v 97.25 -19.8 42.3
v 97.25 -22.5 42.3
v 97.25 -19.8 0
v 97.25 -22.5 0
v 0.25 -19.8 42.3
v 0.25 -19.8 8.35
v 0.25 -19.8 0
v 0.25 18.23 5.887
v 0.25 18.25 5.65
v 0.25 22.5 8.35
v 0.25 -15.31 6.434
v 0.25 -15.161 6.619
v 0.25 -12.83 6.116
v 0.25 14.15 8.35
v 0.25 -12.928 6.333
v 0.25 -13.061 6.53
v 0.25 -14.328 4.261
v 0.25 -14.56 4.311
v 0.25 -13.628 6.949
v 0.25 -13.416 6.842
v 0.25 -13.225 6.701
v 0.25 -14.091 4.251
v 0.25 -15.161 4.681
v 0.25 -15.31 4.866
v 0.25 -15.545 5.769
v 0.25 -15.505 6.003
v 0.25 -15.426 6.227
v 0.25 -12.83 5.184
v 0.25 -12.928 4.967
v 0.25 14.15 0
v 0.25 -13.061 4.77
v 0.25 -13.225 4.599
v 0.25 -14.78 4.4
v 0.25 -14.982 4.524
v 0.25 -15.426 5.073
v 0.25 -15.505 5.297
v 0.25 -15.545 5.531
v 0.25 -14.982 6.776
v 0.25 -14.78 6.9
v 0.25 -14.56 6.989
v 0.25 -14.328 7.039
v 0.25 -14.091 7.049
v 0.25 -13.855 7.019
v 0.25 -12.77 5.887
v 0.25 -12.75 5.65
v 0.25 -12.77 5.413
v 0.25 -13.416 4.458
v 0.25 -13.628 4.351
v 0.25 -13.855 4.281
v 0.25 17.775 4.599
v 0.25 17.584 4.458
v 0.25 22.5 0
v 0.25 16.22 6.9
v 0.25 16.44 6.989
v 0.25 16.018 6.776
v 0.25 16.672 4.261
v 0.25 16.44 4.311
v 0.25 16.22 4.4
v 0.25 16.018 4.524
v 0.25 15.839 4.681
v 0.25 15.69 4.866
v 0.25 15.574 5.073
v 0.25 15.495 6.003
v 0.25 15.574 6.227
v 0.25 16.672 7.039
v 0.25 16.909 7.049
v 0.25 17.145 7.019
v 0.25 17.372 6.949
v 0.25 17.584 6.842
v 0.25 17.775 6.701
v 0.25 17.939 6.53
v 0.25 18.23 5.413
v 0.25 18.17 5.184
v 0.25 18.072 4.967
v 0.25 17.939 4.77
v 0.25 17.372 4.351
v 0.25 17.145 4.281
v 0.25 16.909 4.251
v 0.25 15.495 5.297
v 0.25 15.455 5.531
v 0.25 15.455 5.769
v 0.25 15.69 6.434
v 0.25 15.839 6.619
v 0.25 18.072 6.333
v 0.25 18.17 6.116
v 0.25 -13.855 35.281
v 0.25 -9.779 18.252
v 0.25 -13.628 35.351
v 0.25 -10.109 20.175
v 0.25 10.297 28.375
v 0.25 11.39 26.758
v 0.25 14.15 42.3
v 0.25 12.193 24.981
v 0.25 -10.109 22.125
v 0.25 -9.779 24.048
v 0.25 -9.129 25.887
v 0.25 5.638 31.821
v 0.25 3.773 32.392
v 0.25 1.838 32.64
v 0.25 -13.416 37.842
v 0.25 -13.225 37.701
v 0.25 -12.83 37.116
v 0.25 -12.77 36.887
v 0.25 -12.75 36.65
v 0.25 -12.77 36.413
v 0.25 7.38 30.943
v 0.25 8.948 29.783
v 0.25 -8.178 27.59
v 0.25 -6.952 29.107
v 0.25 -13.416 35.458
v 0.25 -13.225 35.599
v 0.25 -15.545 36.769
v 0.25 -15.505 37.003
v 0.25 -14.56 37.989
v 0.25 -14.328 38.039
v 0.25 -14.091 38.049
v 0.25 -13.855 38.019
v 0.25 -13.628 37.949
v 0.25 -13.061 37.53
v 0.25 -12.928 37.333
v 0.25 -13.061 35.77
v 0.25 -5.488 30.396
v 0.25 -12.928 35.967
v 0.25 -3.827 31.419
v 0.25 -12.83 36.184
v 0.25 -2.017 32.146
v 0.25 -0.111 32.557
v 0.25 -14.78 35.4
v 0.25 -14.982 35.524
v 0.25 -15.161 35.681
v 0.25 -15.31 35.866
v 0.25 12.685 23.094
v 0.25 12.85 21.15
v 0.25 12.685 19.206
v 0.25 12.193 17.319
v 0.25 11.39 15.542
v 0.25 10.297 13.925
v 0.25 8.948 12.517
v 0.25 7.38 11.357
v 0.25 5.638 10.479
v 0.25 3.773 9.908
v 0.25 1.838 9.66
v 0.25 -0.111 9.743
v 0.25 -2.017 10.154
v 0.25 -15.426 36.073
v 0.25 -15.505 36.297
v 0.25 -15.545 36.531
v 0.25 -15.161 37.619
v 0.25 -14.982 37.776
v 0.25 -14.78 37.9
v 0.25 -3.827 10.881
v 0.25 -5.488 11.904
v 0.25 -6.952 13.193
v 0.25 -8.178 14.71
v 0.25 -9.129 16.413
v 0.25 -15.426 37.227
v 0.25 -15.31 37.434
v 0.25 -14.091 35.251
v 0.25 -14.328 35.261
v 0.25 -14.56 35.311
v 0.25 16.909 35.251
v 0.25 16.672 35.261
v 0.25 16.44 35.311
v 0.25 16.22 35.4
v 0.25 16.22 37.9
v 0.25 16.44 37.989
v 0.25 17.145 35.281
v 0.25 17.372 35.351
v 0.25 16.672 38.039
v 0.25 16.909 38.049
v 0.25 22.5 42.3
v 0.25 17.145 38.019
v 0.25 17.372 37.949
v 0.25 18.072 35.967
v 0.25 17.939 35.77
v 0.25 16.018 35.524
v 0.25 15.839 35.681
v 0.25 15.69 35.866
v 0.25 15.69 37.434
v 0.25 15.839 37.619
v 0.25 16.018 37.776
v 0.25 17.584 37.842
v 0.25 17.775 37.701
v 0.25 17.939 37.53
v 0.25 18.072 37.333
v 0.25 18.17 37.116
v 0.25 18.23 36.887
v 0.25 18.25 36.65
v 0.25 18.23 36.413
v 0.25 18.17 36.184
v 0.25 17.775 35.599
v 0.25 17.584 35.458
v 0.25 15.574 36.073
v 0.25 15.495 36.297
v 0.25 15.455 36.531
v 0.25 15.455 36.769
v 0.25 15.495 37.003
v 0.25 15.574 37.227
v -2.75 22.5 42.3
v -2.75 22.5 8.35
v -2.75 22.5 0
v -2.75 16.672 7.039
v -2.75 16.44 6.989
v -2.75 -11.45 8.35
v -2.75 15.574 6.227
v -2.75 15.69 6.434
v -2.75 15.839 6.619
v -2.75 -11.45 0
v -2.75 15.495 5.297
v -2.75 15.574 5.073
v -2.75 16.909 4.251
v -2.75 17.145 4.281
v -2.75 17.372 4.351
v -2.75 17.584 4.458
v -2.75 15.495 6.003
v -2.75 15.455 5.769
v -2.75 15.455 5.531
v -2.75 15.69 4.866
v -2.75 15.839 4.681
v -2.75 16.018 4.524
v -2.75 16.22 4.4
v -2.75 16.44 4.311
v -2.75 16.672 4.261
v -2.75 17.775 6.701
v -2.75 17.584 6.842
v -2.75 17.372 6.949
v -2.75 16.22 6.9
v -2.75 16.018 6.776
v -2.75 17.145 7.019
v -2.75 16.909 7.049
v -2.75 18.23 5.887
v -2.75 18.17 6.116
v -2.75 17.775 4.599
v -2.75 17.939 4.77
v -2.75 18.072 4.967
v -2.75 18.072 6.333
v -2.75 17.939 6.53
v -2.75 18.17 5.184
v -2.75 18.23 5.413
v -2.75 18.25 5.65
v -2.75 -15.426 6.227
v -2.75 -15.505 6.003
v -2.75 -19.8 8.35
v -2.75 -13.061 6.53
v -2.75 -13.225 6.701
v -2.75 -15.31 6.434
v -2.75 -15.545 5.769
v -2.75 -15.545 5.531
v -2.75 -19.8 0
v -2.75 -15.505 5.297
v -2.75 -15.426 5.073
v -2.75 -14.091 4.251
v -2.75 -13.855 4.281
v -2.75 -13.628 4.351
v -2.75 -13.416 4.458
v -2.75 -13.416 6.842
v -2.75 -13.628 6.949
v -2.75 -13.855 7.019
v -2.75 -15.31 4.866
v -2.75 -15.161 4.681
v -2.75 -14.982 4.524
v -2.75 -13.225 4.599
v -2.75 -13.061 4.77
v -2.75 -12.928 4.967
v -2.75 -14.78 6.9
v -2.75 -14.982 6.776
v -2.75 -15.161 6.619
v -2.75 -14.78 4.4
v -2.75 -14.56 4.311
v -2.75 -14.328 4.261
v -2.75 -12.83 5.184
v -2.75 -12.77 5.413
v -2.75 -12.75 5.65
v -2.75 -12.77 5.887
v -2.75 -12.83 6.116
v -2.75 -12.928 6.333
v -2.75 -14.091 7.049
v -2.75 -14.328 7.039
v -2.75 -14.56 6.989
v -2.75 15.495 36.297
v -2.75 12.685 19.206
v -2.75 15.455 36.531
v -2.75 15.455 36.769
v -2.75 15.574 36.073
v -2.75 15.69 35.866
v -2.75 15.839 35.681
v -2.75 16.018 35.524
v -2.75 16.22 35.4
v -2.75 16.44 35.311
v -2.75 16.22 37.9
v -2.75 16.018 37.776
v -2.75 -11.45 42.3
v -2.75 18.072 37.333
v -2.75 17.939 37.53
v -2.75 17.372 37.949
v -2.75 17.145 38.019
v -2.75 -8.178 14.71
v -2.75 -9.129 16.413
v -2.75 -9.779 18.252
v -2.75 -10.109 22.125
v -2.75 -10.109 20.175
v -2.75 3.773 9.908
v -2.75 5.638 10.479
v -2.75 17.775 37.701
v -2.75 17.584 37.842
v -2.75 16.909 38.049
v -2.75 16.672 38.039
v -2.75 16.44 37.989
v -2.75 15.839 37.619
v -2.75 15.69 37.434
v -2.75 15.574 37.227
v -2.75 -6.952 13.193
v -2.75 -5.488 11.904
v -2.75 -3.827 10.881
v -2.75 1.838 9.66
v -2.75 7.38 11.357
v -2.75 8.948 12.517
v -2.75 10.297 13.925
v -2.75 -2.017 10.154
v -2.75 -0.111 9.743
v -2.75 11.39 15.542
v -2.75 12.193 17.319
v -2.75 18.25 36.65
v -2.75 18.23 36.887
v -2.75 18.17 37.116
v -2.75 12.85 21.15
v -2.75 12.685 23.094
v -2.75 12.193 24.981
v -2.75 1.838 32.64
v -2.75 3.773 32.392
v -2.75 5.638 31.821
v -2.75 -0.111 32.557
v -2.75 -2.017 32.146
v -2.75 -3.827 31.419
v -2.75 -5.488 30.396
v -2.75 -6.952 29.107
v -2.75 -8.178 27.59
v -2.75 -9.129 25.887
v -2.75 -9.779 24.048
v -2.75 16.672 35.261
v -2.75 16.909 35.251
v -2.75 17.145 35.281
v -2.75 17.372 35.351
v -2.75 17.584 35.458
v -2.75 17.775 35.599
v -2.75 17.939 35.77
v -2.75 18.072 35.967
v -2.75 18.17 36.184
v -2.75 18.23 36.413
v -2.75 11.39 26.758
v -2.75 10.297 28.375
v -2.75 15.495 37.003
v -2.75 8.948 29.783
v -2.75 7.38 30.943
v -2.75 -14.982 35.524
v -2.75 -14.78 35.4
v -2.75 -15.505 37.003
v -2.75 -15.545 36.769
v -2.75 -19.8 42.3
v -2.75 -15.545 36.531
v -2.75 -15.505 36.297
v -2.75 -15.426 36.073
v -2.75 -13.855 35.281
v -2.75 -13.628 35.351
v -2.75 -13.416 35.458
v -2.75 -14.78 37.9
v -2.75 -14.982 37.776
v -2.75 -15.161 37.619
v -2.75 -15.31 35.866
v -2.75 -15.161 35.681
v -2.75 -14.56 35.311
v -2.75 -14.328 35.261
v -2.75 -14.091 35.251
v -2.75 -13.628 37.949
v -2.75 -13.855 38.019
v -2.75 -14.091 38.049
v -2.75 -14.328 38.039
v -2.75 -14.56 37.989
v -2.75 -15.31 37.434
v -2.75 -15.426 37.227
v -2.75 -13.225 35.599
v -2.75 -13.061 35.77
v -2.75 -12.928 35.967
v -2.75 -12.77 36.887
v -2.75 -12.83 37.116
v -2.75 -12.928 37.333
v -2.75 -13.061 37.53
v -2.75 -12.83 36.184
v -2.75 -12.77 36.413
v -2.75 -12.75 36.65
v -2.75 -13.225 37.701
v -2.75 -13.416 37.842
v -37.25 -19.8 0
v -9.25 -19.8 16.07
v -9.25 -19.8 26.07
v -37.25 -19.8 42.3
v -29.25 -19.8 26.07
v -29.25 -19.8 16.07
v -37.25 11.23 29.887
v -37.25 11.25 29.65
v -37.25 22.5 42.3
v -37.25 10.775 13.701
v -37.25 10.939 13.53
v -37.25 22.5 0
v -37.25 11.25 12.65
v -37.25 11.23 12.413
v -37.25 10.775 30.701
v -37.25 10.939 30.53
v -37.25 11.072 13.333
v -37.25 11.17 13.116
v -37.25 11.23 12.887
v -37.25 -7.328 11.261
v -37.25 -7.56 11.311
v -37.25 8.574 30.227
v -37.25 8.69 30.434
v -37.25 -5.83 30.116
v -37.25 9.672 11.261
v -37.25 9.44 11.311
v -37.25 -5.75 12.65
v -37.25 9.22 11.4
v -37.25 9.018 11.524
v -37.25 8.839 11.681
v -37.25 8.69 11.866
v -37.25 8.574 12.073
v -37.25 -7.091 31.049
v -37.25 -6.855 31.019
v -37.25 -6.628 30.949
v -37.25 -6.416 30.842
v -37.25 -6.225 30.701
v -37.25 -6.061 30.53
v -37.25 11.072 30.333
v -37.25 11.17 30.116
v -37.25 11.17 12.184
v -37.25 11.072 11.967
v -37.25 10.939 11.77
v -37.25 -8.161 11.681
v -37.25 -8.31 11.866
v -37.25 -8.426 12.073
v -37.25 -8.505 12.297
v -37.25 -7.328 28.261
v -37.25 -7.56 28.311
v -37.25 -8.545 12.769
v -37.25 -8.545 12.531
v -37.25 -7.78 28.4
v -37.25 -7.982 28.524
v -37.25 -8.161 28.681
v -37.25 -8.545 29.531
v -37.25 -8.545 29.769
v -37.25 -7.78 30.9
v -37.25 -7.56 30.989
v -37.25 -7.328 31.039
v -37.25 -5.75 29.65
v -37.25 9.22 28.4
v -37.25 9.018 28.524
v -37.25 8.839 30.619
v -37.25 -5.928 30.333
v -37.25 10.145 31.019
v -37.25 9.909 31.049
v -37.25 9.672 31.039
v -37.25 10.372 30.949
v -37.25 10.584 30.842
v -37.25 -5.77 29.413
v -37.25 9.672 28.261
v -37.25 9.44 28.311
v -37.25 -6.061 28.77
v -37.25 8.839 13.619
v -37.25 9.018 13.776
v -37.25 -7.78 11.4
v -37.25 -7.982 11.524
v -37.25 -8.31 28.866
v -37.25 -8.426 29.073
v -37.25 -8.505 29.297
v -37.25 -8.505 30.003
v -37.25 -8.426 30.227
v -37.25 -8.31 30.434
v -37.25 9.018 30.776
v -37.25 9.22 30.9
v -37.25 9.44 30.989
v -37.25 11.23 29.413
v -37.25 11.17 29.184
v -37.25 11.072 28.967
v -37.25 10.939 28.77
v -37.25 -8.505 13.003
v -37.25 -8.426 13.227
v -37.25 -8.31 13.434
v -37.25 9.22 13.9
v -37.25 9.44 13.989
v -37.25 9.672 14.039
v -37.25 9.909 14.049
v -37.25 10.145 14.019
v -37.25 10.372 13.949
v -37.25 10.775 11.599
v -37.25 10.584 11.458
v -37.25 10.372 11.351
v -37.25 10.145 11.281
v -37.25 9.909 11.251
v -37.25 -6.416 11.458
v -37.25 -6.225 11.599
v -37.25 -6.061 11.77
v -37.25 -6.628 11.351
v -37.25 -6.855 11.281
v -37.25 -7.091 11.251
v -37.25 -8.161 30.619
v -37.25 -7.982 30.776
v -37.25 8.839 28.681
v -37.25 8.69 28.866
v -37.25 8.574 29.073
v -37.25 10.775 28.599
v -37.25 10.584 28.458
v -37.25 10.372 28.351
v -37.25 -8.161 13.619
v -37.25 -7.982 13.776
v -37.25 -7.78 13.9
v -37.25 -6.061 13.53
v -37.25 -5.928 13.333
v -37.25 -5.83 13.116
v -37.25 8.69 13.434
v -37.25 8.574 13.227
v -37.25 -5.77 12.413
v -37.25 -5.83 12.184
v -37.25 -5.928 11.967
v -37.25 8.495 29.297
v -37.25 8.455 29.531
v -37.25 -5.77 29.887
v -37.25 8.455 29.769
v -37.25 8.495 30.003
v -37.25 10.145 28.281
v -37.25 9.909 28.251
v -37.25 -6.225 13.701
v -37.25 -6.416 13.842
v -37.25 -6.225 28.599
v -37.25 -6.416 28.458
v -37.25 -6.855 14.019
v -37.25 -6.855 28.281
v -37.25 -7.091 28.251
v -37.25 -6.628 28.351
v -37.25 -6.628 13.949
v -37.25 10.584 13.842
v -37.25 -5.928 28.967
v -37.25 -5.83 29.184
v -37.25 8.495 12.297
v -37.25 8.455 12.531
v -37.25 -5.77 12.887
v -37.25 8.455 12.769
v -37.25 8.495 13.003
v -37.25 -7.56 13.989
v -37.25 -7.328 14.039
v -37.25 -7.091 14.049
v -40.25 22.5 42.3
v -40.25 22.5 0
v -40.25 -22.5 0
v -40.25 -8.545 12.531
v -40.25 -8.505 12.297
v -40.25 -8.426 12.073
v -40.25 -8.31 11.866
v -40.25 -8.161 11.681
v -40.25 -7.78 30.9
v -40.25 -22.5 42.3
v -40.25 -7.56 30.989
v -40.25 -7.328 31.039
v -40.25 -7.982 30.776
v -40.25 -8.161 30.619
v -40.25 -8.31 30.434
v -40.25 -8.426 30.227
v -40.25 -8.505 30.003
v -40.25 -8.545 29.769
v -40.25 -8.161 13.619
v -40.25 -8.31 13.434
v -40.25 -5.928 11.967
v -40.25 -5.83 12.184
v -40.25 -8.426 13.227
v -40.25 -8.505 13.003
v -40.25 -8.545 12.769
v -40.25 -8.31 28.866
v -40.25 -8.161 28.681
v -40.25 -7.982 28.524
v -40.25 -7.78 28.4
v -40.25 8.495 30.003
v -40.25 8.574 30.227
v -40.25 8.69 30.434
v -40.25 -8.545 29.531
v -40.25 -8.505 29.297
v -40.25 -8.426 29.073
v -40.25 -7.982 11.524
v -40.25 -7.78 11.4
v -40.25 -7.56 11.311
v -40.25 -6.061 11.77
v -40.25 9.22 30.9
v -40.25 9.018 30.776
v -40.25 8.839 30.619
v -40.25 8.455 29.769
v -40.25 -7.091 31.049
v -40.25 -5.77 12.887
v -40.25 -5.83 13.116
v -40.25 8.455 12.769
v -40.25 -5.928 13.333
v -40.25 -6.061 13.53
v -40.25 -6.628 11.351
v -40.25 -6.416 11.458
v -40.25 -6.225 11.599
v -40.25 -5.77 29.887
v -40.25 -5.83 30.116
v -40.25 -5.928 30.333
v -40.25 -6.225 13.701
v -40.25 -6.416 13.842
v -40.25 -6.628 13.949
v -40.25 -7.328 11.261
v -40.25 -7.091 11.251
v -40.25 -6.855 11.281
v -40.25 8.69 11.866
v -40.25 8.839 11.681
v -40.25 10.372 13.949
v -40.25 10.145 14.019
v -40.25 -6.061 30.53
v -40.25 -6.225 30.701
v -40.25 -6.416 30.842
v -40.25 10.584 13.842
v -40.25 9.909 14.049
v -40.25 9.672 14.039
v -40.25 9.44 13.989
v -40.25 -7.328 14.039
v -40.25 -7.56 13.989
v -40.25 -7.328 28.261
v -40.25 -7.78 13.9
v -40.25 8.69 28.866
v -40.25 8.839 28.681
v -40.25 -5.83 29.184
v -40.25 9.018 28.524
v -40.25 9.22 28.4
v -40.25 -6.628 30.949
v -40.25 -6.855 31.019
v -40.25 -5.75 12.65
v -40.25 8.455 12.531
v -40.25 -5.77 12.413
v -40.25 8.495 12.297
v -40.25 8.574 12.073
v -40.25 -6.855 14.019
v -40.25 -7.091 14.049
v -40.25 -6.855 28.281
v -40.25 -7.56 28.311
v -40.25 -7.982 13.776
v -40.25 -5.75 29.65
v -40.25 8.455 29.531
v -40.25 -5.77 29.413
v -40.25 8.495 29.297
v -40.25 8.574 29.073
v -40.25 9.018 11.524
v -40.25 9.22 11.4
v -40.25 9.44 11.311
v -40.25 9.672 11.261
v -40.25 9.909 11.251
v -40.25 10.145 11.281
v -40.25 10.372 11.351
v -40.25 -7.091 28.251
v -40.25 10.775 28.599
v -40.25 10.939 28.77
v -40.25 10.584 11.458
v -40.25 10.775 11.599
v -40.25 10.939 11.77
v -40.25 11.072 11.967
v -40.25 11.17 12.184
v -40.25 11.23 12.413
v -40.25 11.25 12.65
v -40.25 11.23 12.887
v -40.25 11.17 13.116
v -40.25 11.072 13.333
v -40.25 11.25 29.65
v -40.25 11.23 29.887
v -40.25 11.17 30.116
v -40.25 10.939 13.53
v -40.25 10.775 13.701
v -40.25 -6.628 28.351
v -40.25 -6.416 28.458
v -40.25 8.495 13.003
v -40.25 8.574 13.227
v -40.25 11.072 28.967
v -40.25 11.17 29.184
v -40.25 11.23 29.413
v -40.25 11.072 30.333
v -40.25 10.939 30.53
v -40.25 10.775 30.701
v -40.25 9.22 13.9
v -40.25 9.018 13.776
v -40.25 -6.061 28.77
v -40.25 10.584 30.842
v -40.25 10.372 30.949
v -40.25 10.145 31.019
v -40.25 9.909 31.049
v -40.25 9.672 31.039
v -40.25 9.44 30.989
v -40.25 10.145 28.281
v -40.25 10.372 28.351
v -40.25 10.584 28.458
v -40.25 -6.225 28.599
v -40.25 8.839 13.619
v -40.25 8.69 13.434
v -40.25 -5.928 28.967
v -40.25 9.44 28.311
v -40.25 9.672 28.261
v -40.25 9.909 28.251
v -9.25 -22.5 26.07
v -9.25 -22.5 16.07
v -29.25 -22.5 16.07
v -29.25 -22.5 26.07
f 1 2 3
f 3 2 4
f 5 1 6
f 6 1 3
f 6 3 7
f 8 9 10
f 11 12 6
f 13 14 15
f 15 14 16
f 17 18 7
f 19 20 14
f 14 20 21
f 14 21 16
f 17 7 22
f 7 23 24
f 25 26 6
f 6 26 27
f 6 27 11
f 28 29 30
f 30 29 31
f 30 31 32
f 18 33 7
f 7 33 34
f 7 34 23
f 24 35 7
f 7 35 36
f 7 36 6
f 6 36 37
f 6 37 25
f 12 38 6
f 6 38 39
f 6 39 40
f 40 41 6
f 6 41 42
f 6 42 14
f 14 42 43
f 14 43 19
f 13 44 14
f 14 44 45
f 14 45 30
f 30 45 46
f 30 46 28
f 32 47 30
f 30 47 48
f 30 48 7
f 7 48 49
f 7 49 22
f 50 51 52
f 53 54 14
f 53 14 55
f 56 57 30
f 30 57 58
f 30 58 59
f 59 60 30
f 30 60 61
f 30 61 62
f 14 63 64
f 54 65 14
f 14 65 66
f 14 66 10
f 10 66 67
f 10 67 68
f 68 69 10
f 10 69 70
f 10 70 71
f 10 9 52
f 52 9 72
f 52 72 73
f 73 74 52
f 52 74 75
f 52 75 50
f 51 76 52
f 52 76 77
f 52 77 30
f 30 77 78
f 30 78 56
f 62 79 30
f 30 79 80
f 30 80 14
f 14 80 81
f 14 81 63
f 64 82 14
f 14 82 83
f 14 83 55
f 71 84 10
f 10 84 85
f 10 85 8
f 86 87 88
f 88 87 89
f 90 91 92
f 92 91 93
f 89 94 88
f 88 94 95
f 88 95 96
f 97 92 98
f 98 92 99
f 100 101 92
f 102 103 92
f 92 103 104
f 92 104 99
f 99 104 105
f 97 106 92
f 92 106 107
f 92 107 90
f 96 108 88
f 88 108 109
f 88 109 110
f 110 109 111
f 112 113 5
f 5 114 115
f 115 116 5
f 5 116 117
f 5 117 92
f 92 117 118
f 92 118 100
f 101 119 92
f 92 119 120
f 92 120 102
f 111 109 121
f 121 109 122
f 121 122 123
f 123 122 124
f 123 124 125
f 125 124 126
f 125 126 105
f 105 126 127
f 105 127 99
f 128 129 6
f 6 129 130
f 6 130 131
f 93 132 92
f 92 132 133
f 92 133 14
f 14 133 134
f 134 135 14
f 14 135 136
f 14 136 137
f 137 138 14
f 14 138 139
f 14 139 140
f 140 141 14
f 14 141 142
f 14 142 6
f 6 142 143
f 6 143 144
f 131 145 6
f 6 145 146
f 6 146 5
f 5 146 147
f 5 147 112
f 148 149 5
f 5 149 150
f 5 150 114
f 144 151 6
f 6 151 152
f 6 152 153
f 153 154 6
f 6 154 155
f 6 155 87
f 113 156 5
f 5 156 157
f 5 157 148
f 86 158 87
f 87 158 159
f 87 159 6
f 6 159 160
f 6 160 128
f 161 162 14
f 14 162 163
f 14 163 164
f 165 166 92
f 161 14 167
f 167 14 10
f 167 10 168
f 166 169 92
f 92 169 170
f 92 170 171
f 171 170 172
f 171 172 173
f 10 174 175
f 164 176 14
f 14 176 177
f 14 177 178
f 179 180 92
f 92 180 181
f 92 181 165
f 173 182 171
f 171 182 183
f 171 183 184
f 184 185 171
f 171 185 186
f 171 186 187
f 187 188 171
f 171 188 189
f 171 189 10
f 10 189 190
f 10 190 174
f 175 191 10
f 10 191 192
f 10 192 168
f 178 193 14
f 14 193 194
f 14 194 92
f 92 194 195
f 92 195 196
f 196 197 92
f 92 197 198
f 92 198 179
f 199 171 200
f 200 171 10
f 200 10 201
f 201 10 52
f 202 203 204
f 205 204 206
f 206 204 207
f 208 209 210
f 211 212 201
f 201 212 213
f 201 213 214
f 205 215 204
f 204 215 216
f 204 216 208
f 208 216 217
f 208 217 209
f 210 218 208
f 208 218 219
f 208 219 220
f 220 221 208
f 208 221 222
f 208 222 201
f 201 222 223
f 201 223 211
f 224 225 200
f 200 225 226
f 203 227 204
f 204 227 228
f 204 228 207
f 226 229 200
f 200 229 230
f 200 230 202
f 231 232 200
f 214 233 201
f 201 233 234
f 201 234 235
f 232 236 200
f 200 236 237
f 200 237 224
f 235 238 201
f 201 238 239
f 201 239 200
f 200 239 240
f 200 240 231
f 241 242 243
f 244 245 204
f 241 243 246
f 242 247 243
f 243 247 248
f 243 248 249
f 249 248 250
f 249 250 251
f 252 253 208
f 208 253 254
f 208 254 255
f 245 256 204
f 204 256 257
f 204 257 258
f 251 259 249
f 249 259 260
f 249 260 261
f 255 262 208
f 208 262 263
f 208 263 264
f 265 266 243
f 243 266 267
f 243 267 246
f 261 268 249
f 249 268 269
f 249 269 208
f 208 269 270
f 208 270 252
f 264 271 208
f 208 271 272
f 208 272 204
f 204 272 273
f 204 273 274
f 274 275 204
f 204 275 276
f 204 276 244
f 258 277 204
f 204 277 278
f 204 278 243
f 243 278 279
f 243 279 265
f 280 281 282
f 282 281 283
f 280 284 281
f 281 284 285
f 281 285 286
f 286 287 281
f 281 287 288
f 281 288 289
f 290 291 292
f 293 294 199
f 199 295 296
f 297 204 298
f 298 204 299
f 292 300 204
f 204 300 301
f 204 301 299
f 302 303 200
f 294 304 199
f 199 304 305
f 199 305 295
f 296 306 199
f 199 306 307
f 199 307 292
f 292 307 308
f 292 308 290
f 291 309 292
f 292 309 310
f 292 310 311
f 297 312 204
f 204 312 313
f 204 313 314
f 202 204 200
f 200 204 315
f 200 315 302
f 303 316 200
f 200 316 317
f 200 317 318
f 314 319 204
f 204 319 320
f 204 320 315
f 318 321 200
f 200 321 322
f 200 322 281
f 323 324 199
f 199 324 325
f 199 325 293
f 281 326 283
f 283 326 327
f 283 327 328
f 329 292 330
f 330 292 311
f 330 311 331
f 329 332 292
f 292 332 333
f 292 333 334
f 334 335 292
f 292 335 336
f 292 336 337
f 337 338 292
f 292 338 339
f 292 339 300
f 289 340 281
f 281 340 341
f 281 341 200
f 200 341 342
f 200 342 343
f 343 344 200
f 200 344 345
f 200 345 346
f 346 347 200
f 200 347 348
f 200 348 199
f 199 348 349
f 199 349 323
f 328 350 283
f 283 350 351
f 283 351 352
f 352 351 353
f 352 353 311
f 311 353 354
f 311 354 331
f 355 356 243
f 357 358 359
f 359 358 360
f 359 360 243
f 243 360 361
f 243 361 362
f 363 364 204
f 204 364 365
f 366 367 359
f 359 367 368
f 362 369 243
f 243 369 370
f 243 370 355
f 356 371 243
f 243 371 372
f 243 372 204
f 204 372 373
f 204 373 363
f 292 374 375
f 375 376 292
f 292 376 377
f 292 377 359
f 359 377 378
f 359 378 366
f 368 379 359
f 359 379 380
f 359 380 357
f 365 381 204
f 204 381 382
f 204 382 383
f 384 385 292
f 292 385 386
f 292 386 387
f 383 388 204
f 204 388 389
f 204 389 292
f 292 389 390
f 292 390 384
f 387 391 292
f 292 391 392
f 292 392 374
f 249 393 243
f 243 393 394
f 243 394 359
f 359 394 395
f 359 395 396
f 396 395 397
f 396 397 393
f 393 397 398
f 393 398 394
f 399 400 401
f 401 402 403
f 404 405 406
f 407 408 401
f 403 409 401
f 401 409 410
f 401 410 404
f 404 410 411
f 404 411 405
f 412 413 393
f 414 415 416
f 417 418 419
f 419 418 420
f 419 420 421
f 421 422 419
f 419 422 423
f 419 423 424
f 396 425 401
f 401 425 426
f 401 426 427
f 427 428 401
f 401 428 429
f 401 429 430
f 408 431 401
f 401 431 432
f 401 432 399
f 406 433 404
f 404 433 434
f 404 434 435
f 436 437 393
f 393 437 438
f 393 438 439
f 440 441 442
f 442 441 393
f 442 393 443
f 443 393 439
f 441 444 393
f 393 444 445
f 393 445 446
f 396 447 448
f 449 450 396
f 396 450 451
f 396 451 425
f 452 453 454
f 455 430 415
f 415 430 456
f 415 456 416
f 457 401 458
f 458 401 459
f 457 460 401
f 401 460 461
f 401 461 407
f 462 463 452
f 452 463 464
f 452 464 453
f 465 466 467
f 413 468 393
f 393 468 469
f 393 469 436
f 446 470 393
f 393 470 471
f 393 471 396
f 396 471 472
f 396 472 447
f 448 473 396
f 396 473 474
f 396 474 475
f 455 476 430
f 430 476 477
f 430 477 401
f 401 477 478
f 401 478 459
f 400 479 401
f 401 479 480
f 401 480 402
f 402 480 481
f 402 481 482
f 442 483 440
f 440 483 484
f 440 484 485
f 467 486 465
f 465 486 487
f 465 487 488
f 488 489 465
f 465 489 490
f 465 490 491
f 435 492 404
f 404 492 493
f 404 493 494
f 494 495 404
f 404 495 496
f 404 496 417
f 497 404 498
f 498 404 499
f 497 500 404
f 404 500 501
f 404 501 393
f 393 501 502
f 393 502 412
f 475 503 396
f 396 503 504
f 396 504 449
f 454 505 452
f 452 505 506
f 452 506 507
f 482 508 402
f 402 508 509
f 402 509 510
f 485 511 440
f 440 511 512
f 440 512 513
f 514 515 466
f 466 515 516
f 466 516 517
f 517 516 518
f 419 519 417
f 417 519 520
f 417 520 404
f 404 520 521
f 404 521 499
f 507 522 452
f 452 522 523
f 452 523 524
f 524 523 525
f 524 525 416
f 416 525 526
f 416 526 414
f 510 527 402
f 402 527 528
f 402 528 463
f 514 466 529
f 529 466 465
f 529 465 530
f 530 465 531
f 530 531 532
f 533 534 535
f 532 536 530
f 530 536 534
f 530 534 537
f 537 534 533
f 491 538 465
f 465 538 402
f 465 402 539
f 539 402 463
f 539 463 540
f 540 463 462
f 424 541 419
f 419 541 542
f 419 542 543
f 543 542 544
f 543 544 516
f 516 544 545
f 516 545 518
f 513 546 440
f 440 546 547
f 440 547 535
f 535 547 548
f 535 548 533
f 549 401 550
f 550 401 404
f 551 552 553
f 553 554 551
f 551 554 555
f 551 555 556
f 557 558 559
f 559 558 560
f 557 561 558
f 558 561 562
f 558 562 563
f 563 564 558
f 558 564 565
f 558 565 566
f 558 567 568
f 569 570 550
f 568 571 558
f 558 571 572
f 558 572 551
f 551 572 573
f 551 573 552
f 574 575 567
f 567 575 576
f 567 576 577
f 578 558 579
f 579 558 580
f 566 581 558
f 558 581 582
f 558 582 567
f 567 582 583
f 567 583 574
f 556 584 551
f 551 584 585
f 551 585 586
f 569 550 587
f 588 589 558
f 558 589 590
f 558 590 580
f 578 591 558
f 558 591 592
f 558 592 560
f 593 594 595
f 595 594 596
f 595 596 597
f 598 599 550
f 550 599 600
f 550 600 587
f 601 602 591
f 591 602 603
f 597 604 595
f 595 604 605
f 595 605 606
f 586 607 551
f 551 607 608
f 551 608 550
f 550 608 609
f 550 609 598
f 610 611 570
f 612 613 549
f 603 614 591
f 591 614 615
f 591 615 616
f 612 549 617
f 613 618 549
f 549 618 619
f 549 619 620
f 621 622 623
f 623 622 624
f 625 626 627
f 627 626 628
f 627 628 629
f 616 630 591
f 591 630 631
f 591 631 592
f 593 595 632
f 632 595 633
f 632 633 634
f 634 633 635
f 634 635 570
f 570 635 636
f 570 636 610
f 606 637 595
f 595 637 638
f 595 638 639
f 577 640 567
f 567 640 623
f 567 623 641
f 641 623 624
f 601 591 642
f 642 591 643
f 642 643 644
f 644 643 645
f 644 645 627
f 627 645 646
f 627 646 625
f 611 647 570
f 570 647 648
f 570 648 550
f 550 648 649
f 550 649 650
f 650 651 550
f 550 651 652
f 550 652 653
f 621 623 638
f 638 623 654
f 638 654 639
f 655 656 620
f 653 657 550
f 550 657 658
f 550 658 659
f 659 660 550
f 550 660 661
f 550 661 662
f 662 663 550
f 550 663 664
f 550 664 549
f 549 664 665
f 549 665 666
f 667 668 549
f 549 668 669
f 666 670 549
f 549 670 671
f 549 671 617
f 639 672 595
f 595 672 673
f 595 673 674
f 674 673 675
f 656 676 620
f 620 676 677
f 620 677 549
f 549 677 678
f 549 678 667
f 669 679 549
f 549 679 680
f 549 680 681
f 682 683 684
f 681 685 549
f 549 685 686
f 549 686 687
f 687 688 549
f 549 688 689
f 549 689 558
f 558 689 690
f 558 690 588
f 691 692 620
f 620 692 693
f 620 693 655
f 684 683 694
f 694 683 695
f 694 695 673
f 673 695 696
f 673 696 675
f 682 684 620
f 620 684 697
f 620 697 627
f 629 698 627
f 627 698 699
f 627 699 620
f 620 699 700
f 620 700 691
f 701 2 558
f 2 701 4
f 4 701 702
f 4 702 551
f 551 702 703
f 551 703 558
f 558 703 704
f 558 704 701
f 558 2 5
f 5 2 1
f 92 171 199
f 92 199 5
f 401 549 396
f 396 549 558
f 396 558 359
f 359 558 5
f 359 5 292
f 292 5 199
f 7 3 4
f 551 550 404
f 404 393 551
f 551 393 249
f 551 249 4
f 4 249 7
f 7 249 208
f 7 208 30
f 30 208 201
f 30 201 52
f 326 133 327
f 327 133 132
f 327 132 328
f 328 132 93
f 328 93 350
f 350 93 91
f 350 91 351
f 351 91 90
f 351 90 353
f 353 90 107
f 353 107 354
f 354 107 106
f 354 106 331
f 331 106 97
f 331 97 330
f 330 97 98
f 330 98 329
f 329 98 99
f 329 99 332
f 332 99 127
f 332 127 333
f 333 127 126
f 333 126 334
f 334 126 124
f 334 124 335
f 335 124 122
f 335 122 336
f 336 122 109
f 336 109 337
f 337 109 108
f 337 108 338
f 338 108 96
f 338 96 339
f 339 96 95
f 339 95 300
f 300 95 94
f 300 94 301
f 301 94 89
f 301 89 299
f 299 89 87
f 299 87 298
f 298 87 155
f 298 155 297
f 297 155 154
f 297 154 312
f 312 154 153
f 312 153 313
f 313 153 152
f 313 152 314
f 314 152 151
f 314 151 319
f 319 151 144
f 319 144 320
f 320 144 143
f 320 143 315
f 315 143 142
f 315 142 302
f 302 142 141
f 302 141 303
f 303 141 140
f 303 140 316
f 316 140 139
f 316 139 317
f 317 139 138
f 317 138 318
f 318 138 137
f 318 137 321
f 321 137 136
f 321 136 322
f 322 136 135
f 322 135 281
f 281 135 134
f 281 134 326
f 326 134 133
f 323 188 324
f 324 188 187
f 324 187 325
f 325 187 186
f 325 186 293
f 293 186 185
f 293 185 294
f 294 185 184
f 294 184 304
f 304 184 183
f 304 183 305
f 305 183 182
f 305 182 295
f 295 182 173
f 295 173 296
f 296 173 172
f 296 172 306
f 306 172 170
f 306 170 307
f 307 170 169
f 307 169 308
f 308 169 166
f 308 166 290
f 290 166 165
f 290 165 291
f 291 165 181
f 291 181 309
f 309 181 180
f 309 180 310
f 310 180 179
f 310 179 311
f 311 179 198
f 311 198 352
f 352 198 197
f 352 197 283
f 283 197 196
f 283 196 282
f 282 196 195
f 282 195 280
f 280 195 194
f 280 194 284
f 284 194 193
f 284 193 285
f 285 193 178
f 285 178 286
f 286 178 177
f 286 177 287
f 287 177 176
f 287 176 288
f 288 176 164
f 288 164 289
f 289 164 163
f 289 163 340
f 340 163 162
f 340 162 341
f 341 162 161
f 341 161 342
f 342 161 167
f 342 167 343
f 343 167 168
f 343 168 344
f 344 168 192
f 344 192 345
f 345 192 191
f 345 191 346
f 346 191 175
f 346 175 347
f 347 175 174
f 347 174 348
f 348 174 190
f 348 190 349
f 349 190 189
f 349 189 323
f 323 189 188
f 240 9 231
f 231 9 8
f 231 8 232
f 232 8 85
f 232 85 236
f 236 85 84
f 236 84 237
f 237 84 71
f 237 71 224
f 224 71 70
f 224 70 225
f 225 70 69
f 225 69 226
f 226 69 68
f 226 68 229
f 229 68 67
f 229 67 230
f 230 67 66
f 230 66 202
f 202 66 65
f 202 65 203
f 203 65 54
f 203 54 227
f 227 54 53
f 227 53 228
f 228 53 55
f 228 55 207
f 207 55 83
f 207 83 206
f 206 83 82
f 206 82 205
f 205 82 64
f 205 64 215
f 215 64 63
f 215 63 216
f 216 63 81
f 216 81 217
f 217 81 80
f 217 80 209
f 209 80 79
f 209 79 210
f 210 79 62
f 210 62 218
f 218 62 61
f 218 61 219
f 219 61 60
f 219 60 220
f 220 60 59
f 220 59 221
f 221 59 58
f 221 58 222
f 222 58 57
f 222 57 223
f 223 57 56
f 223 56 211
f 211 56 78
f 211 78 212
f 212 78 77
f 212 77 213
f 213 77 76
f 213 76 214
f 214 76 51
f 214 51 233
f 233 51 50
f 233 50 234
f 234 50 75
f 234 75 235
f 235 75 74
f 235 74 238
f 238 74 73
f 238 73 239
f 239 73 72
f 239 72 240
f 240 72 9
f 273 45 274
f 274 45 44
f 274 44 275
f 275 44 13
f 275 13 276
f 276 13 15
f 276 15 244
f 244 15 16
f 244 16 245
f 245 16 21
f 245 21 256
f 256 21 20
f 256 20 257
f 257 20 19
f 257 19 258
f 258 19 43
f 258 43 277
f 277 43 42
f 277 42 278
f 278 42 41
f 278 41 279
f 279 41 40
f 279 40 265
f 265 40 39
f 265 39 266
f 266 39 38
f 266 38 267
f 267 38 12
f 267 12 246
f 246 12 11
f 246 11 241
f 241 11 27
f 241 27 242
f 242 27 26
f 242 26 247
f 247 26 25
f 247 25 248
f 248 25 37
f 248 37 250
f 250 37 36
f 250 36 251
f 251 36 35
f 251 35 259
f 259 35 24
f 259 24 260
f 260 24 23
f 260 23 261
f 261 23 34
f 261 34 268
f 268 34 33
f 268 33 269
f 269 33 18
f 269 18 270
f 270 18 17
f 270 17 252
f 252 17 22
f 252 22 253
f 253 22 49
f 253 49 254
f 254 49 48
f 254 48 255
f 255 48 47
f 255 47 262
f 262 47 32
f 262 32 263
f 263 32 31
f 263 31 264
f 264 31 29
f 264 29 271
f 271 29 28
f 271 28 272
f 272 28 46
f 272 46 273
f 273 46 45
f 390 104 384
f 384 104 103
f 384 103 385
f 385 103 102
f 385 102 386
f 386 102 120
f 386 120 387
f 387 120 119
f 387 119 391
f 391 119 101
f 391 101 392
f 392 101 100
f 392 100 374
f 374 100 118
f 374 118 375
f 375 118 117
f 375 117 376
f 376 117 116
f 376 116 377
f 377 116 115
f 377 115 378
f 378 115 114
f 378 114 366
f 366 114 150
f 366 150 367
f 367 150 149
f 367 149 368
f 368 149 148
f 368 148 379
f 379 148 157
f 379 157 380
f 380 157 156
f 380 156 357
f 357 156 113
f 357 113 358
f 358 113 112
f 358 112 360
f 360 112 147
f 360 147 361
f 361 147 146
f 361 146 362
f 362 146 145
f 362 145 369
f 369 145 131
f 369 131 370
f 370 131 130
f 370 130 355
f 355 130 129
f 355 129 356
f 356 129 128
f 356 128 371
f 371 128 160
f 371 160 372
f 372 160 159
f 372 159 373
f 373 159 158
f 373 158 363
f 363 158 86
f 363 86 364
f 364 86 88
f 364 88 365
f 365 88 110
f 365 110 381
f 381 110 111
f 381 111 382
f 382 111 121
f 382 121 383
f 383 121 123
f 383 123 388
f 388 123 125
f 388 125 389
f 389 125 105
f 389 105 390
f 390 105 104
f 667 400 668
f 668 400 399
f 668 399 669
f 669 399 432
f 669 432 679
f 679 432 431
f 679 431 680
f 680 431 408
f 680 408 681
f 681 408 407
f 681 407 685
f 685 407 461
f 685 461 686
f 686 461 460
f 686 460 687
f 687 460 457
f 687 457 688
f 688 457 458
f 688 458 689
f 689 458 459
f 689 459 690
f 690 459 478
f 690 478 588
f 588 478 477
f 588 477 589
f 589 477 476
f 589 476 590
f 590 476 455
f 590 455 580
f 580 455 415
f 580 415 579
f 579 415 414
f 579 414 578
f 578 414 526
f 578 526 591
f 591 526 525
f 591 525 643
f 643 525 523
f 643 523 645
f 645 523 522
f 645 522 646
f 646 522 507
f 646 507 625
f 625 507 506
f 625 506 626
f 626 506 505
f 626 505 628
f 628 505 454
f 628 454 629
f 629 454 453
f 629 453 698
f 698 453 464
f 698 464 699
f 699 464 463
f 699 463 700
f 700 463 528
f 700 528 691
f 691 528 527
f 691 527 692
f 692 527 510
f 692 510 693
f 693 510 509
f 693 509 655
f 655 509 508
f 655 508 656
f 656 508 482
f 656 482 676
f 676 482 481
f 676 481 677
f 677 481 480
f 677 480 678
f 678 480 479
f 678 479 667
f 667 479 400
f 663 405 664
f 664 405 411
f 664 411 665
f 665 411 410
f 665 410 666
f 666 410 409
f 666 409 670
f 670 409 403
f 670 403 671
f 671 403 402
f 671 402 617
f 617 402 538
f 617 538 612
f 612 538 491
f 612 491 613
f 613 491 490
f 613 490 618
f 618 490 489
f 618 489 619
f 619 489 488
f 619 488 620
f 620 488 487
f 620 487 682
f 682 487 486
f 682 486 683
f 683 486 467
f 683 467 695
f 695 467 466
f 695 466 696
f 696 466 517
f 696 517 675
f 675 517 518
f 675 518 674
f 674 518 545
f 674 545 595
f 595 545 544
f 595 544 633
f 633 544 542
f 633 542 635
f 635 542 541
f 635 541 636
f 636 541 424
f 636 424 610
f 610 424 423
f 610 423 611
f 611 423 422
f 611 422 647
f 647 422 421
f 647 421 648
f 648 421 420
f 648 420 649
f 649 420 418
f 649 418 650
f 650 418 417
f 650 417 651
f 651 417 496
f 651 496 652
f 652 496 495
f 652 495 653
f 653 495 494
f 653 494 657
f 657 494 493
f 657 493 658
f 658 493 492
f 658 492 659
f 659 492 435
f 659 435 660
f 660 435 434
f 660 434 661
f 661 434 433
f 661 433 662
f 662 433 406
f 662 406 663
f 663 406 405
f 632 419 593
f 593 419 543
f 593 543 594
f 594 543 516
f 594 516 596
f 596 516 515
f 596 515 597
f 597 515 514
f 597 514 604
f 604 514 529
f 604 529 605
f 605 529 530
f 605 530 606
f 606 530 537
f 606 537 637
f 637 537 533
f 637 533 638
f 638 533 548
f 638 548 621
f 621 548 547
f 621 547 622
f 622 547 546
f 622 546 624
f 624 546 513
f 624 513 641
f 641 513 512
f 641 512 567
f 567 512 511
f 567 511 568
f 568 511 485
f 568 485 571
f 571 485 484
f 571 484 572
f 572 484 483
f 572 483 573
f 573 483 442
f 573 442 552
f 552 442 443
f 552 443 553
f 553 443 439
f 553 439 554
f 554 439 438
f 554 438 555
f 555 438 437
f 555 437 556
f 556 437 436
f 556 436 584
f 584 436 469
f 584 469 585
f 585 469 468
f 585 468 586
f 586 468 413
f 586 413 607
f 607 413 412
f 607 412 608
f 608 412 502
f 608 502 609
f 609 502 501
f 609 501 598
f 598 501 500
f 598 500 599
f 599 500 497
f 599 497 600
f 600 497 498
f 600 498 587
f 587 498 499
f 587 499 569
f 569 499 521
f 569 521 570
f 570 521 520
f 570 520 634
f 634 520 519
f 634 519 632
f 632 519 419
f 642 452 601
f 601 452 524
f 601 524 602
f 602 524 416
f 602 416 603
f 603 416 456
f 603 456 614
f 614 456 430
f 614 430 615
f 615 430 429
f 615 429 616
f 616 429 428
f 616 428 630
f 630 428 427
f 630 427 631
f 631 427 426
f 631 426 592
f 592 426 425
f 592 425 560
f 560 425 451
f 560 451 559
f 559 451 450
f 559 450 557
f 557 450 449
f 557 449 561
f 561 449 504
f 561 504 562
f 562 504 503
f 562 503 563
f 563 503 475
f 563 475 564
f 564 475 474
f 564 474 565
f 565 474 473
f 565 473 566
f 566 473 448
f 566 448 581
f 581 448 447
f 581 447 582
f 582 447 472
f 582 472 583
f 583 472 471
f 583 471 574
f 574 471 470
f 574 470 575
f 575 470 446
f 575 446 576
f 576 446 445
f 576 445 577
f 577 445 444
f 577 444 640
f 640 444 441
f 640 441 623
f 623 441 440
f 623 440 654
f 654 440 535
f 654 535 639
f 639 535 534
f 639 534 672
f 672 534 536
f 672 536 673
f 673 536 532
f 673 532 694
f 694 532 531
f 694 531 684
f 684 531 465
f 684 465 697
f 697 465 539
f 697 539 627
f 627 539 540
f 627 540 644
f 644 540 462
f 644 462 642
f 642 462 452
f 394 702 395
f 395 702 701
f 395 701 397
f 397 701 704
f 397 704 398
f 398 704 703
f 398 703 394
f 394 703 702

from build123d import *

# Parameters (mm, degrees)
BOSS_EXTRUDE1_DEPTH = 42.3
SKETCH3_R           = 11.5
SKETCH3_R_2         = 1.4
CUT_EXTRUDE1_DEPTH  = 5
SKETCH4_R           = 1.4
CUT_EXTRUDE2_DEPTH  = 5
SKETCH5_W           = 20
SKETCH5_H           = 10
CUT_EXTRUDE3_DEPTH  = 5


with BuildPart() as part:
    # Sketch2 → Boss-Extrude1 (new body)
    with BuildSketch(Plane.XY):
        Polygon((-2.75, 22.5), (-2.75, -19.8), (-37.25, -19.8), (-37.25, 22.5), (-40.25, 22.5), (-40.25, -22.5), (97.25, -22.5), (97.25, -19.8), (0.25, -19.8), (0.25, 22.5), align=None)
    extrude(amount=BOSS_EXTRUDE1_DEPTH)

    # Sketch3 → Cut-Extrude1 (cut)
    with BuildSketch(Plane(origin=(0.25, 0, 0), x_dir=(0, 0, -1), z_dir=(1, 0, 0))):
        with Locations((-21.15, 1.35)):
            Circle(SKETCH3_R)
        with Locations((-36.65, 16.85)):
            Circle(SKETCH3_R_2)
        with Locations((-5.65, 16.85)):
            Circle(SKETCH3_R_2)
        with Locations((-5.65, -14.15)):
            Circle(SKETCH3_R_2)
        with Locations((-36.65, -14.15)):
            Circle(SKETCH3_R_2)
    extrude(amount=-CUT_EXTRUDE1_DEPTH, mode=Mode.SUBTRACT)

    # Sketch4 → Cut-Extrude2 (cut)
    with BuildSketch(Plane(origin=(-37.25, 0, 0), x_dir=(0, 0, -1), z_dir=(1, 0, 0))):
        with Locations((-29.65, 9.85)):
            Circle(SKETCH4_R)
        with Locations((-12.65, 9.85)):
            Circle(SKETCH4_R)
        with Locations((-12.65, -7.15)):
            Circle(SKETCH4_R)
        with Locations((-29.65, -7.15)):
            Circle(SKETCH4_R)
    extrude(amount=-CUT_EXTRUDE2_DEPTH, mode=Mode.SUBTRACT)

    # Sketch5 → Cut-Extrude3 (cut)
    with BuildSketch(Plane(origin=(0, -19.8, 0), x_dir=(1, 0, 0), z_dir=(0, 1, 0))):
        with Locations((-19.25, -21.070122094)):
            Rectangle(SKETCH5_W, SKETCH5_H)
    extrude(amount=-CUT_EXTRUDE3_DEPTH, mode=Mode.SUBTRACT)


solid = part.part
